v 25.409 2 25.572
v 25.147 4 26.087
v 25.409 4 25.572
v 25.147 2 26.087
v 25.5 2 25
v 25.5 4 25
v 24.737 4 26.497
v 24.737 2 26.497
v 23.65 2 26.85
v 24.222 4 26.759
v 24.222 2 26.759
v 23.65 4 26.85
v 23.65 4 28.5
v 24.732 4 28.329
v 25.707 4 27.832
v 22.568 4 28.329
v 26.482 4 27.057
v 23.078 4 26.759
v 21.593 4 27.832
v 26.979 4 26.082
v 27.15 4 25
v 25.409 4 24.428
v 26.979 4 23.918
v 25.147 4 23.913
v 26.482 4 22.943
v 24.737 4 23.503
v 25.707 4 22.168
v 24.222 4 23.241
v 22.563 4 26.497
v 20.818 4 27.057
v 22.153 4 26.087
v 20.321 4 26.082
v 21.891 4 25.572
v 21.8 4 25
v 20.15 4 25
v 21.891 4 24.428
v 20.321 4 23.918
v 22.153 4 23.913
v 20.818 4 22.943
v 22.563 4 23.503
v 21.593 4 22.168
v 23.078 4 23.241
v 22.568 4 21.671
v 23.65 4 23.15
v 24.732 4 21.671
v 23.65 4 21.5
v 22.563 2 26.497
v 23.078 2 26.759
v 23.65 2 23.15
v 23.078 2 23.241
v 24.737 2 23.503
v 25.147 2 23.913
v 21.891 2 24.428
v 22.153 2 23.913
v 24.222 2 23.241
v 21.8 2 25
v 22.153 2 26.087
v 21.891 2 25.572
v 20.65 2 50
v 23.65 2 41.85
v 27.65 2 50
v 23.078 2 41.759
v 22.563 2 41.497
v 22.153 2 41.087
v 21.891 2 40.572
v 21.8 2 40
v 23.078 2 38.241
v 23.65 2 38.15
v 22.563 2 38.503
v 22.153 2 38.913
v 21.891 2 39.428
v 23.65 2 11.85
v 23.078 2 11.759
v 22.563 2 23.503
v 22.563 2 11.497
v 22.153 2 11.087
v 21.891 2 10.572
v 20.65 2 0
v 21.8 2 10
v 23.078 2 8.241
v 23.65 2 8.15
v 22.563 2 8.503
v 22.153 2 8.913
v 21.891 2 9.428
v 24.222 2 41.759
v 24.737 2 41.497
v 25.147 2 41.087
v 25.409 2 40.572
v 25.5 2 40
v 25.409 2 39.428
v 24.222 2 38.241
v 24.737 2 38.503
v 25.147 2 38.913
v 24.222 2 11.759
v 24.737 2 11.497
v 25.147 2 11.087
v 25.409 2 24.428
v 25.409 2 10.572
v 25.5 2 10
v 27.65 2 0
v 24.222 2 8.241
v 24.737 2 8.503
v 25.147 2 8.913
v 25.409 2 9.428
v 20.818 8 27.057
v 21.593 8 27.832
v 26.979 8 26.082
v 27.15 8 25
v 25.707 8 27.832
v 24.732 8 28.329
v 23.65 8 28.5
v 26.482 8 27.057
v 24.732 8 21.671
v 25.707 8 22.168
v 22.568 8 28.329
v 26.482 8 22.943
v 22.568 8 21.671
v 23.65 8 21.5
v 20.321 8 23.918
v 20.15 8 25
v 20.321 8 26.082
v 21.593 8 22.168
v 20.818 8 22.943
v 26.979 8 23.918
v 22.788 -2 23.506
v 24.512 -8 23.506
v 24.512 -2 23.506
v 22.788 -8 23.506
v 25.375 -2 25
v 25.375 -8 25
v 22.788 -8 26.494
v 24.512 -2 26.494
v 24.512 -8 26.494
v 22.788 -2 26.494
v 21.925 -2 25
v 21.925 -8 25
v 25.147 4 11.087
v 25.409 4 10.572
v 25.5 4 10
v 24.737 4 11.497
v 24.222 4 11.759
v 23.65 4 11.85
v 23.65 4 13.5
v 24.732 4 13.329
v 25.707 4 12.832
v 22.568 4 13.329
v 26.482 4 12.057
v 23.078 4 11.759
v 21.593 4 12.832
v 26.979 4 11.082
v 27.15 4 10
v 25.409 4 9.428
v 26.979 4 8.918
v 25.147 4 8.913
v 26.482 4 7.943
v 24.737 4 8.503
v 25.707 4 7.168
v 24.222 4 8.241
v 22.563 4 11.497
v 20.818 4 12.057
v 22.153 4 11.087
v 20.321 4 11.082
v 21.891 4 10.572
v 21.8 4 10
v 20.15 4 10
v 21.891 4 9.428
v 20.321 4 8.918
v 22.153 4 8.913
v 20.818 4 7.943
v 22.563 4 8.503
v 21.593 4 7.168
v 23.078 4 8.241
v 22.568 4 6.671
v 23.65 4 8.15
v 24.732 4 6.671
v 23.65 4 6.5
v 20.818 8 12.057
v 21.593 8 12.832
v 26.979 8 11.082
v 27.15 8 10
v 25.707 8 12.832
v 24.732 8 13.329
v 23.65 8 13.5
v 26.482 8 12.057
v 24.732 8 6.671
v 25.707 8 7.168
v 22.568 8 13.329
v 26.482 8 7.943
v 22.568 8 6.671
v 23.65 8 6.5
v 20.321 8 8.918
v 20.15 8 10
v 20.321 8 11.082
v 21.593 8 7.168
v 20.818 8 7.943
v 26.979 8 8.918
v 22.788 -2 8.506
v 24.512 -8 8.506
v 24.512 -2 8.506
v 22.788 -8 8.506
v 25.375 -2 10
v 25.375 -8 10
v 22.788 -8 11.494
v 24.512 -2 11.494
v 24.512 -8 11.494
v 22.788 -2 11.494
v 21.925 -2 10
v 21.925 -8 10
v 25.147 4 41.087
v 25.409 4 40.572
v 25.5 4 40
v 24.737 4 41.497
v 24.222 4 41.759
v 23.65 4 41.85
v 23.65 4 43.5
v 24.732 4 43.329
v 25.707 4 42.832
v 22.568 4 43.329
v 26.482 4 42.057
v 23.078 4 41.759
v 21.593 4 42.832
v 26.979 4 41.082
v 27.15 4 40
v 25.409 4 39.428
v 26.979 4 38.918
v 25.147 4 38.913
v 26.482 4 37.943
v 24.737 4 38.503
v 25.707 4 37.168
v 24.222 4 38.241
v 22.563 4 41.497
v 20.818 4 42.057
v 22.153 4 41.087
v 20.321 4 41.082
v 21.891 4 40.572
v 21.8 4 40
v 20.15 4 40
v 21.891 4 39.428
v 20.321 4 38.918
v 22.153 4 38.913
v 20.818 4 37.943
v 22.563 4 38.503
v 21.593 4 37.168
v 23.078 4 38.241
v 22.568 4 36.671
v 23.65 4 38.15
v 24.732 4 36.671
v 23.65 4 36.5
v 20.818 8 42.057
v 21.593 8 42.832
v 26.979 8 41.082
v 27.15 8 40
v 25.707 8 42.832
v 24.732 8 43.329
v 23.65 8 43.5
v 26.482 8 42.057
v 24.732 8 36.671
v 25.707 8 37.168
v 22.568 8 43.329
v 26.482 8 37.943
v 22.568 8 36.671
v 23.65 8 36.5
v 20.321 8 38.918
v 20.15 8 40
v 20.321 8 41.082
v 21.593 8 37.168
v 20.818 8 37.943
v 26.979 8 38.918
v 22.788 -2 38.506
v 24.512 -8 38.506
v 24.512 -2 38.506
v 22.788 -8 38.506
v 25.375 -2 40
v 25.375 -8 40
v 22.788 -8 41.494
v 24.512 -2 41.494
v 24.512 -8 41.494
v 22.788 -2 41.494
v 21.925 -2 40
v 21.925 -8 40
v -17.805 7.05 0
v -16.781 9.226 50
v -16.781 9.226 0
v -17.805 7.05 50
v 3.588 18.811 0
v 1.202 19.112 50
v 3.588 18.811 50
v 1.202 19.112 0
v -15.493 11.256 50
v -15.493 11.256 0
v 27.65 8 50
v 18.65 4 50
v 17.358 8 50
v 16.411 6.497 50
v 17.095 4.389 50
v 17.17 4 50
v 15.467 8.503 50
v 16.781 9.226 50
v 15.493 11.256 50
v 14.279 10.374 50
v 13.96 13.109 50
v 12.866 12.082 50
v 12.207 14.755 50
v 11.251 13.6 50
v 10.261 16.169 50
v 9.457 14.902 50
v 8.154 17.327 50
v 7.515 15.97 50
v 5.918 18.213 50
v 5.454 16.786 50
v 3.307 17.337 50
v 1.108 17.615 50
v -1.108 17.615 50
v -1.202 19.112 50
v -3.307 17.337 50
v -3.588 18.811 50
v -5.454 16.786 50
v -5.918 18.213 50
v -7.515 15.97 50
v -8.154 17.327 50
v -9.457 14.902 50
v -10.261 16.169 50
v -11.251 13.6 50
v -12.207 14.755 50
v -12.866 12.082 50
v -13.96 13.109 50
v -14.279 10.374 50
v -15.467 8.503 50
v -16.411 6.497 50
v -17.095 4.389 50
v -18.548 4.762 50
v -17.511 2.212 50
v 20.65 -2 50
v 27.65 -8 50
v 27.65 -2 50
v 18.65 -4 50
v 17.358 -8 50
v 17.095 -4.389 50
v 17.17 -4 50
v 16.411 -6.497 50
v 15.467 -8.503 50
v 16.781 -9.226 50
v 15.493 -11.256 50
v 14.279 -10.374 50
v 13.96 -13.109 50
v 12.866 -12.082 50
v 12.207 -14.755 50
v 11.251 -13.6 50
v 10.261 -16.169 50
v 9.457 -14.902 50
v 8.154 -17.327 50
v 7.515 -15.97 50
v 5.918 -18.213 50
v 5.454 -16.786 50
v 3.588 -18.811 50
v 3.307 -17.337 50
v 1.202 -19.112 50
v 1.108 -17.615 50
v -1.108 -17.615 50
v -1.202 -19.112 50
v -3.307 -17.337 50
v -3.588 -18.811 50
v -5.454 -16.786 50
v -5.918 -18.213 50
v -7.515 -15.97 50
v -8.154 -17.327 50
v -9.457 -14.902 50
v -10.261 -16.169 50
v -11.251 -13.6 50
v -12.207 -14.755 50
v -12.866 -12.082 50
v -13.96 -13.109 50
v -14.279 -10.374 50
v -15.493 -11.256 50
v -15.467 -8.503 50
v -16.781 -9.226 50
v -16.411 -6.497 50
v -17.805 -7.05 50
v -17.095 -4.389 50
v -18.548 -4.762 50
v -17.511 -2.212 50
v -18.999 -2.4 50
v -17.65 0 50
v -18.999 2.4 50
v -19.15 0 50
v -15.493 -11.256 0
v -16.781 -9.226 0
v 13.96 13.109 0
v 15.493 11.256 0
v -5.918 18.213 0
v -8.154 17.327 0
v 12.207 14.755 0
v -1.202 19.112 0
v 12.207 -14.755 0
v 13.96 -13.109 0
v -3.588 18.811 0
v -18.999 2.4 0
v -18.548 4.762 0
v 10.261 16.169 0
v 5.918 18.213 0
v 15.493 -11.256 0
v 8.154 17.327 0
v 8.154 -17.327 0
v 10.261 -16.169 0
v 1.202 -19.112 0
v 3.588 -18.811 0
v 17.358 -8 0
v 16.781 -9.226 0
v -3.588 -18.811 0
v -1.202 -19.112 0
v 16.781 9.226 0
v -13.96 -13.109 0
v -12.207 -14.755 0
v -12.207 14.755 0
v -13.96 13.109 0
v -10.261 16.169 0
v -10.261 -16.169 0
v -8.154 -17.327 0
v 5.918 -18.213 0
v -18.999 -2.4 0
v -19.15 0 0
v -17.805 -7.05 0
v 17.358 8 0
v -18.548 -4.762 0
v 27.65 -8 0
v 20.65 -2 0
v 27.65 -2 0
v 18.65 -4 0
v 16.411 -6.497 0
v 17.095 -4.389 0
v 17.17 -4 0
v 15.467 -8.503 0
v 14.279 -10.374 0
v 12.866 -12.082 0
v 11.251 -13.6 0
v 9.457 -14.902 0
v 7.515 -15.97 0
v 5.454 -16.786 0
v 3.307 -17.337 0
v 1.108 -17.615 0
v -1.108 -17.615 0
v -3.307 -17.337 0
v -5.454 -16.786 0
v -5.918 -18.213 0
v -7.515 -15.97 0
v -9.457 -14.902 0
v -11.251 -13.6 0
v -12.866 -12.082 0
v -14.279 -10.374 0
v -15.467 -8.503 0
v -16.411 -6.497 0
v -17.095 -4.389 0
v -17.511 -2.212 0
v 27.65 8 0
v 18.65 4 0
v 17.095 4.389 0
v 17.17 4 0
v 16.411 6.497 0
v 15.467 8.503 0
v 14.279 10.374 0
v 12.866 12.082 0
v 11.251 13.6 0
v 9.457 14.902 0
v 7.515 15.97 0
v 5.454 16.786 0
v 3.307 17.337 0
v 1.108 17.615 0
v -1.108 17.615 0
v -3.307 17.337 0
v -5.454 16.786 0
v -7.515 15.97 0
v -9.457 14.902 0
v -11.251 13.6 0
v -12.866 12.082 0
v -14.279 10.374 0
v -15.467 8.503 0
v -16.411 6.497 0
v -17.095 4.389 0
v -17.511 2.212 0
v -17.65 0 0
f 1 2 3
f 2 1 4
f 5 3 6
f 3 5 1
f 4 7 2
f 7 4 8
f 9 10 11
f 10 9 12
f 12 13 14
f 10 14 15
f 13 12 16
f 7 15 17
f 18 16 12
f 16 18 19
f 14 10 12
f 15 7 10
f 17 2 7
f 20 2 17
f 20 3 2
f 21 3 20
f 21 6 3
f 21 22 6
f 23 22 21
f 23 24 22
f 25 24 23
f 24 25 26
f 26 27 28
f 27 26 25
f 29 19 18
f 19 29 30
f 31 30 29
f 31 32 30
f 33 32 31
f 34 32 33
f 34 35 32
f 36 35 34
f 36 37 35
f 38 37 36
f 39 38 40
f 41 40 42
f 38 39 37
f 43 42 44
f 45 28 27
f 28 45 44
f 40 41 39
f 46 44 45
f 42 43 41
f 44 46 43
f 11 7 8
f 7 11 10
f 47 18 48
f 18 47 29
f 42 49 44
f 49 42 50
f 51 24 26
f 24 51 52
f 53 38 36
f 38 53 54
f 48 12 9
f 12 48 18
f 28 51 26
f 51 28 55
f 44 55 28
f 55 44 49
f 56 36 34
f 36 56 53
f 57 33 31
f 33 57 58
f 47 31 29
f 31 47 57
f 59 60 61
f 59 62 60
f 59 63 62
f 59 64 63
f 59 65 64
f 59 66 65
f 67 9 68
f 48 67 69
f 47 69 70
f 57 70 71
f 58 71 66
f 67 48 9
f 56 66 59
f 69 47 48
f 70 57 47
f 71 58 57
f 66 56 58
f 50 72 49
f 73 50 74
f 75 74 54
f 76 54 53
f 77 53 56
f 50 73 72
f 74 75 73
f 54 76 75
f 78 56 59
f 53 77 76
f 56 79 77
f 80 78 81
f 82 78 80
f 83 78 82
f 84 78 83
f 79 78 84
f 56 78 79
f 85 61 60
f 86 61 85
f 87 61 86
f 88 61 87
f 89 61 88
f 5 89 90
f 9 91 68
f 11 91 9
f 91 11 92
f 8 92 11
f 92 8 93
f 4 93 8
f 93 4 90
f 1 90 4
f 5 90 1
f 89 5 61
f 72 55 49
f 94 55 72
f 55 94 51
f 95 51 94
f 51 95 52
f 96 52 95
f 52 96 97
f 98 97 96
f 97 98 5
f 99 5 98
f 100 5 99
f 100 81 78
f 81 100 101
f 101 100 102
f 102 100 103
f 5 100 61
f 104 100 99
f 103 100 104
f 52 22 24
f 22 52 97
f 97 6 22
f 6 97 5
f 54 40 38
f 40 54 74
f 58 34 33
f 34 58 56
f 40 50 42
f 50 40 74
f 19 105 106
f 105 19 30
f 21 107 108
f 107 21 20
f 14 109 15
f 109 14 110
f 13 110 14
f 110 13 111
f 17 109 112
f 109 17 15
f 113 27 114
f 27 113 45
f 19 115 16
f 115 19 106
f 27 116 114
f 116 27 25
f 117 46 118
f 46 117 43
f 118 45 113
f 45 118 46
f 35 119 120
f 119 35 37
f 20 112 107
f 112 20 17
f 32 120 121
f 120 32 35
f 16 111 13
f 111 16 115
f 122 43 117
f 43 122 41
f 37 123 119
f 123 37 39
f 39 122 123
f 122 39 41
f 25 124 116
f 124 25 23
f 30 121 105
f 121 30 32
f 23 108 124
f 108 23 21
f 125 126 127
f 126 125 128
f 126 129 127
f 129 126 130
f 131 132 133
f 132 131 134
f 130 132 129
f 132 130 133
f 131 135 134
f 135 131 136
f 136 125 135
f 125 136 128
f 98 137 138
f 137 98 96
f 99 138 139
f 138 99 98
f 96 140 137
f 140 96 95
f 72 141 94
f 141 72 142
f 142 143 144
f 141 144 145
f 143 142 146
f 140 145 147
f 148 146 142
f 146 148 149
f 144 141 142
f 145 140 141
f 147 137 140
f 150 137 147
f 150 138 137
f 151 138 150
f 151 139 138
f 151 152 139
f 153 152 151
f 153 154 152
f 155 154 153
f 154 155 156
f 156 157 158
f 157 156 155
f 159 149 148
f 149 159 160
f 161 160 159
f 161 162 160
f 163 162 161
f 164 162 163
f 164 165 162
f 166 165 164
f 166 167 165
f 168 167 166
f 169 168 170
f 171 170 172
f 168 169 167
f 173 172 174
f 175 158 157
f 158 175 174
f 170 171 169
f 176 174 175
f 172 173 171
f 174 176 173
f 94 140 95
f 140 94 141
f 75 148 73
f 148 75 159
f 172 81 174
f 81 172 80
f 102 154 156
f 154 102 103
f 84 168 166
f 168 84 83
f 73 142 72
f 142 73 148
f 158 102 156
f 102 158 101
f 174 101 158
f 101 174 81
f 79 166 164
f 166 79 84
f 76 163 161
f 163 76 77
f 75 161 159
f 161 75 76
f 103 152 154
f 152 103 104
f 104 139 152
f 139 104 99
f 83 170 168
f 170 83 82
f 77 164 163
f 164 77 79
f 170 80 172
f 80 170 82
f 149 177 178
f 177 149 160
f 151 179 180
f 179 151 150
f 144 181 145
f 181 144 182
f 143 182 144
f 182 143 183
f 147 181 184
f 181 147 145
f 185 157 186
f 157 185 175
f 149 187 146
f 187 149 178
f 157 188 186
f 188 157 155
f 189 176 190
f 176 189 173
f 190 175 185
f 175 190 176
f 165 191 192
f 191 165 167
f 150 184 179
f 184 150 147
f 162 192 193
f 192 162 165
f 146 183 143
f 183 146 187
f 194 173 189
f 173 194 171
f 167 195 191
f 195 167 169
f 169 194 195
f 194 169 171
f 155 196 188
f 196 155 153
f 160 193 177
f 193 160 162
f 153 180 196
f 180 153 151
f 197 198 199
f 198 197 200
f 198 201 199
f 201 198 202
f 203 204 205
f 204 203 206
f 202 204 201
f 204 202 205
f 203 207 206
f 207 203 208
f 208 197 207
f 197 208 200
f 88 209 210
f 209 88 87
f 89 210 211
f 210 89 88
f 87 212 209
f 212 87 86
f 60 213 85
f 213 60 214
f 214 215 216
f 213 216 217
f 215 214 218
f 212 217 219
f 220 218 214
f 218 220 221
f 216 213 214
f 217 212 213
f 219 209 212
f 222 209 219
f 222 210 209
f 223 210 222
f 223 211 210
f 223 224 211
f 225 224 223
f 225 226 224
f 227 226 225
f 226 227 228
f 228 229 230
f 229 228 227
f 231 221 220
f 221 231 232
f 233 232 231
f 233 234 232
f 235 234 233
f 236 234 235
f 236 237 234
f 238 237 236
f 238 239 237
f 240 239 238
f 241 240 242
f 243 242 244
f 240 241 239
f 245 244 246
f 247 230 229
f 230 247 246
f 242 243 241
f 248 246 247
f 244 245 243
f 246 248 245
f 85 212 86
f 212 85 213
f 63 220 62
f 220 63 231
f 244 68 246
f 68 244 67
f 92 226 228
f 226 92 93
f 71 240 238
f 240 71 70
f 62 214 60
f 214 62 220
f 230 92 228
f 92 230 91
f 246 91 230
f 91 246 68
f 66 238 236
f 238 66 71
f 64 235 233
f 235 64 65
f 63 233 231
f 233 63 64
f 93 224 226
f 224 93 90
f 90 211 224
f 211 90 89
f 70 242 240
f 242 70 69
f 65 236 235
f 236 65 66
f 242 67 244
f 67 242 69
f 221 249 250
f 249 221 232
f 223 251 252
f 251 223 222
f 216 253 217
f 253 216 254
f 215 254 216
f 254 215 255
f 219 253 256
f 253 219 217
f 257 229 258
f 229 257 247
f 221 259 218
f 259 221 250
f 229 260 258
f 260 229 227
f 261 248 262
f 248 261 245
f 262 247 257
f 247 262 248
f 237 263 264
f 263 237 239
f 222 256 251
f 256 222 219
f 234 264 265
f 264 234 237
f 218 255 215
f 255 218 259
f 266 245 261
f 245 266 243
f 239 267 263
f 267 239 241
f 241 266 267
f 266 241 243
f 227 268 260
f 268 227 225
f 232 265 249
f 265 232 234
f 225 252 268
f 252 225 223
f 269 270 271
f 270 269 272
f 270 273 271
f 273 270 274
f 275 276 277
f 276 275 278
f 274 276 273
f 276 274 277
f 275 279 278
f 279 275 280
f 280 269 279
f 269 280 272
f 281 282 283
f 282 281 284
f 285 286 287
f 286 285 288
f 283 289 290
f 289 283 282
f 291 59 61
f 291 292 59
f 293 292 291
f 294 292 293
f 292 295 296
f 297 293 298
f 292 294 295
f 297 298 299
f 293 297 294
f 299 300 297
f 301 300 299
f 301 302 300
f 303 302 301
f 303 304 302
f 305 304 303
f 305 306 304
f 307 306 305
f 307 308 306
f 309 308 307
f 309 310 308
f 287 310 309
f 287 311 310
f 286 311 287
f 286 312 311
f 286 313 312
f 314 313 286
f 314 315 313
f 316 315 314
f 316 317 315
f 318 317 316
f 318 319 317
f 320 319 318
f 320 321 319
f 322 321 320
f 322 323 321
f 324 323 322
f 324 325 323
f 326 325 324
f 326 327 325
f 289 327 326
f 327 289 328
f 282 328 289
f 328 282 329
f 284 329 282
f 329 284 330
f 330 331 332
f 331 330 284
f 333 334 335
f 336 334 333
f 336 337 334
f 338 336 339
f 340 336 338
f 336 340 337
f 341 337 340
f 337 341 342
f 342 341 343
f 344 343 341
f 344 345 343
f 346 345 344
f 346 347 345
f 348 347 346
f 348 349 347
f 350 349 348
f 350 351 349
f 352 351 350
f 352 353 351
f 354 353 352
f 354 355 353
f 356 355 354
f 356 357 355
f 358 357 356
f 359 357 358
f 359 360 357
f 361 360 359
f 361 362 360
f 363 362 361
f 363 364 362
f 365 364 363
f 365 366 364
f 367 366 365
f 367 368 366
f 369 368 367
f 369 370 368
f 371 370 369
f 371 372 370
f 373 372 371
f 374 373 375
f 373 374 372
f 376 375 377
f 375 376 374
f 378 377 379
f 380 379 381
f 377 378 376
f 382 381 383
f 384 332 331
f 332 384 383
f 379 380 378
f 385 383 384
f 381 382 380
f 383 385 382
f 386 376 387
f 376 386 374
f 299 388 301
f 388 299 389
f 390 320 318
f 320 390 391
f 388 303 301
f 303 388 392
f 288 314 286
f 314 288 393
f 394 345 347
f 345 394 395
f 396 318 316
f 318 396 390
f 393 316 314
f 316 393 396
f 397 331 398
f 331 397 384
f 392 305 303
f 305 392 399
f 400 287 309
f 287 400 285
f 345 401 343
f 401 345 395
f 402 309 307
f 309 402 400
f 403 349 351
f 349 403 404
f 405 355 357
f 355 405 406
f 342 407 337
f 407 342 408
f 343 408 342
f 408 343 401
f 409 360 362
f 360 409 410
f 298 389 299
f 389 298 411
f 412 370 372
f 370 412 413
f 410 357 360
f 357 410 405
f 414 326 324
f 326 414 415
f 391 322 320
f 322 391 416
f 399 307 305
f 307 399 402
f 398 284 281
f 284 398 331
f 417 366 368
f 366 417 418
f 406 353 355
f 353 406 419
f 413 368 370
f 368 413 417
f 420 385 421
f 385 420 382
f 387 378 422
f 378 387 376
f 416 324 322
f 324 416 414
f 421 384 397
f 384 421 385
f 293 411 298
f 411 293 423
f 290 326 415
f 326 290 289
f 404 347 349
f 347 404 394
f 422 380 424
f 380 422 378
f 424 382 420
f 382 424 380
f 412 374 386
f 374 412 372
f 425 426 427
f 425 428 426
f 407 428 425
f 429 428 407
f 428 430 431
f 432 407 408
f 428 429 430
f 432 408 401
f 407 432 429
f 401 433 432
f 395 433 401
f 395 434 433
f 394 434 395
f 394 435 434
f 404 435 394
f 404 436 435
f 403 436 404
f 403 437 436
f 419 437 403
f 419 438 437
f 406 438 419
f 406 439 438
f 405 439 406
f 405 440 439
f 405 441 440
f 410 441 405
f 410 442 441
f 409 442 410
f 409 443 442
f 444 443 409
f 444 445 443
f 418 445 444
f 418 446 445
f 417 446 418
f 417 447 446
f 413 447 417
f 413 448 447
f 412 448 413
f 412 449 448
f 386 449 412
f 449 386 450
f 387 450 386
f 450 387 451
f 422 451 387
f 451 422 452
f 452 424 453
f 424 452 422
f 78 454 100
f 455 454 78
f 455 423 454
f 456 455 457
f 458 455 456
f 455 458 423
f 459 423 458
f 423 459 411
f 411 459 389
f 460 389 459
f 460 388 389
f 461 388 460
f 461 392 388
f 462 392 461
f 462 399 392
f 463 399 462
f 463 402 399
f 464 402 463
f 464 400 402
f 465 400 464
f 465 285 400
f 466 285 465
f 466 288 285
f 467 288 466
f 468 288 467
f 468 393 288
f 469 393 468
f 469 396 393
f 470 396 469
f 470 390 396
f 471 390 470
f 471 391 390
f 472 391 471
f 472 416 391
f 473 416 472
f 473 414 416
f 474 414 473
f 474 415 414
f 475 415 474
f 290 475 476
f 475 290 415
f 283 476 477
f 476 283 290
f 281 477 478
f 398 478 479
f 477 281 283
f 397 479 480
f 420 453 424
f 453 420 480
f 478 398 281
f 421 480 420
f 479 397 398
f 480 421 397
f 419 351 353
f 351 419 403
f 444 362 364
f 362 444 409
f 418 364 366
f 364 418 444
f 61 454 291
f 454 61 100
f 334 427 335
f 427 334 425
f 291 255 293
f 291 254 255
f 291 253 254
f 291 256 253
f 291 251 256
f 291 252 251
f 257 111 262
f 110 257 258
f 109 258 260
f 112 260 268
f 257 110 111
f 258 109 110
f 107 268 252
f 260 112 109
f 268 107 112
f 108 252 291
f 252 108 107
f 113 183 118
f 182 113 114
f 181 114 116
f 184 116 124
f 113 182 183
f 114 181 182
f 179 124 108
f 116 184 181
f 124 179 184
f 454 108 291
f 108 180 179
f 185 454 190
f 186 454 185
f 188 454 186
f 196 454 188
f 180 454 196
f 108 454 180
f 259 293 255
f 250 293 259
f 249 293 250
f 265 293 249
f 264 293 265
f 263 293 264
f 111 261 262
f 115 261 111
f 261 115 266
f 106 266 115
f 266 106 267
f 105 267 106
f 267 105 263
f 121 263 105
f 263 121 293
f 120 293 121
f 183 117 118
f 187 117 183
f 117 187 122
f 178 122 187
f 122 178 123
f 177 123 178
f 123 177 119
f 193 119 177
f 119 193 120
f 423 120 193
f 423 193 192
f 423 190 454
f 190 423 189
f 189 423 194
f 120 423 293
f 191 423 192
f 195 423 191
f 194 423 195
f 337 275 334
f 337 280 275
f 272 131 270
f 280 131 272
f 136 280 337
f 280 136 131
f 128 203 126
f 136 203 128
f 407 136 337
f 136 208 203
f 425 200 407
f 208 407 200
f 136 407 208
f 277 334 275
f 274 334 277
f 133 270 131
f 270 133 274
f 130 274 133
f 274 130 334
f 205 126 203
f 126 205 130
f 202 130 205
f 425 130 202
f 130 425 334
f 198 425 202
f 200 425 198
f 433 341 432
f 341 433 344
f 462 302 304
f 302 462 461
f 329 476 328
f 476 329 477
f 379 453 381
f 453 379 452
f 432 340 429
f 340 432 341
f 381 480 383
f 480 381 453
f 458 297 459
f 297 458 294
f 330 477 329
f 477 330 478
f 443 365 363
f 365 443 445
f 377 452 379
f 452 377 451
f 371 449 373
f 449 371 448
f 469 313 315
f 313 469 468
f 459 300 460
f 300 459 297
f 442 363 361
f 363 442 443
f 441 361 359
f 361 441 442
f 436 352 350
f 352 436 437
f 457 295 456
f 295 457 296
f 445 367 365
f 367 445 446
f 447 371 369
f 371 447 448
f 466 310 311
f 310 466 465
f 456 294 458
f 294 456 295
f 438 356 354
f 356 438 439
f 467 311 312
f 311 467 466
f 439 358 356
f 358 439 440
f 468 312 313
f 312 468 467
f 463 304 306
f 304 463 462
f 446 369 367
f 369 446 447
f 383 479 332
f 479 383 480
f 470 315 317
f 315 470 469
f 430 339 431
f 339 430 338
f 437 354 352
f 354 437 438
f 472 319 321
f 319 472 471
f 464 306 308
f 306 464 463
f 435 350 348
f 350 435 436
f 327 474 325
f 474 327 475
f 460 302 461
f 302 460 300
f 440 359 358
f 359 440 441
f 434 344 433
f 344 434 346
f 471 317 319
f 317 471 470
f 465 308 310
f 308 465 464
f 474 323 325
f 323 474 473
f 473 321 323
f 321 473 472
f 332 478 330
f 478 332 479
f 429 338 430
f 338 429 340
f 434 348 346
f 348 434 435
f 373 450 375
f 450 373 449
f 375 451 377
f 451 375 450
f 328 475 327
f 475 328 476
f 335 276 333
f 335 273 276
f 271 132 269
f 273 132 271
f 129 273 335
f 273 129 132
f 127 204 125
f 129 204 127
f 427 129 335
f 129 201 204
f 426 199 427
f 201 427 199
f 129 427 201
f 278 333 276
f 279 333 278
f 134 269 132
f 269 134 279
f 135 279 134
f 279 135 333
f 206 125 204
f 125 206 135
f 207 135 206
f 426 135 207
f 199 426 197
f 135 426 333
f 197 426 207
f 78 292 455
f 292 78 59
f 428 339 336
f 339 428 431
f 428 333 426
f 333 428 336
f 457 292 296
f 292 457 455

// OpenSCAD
d = 35.3;
h = 50;

lg = 100;
gt = 4; // gap thickness
edr = 10; // ear delta radius
et = 16; // ear thichness total


module screw_hole(dl, ds, hb, db) {
    large = 100;
    cylinder(h=large, d=ds, $fn=6);
    translate([0,0,-hb]) union() {
        cylinder(h=hb, d=db, $fn=20);
        mirror([0,0,1]) cylinder(h=large, d=dl, $fn=20);
    }
}


difference() {
    $fn = 50;
    union() {
        cylinder(d=d+3, h=h);
        translate([0,-et/2,0]) cube([d/2+edr,et,h]);
    }
    // remove pipe
    cylinder(d=d, h=h);
    
    // remove ear gap
    translate([0,-gt/2,0]) cube([lg,gt,h]);
    
    // remove shelf aligner
    ndt = 2; // aligner norch delta thickness
    ndr = 1; // aligner norch delta radius
    nir = 2; // aligner norch increment radius
    #linear_extrude(h) polygon([
        [0, gt/2+ndt], 
            [d/2+ndr, gt/2+ndt], 
                [d/2+ndr+nir, gt/2], 
                [d/2+ndr+nir, -gt/2], 
            [d/2+ndr, -gt/2-ndt], 
        [0, -gt/2-ndt], 
    ]);
    
    // remove screw holes
    ds = 3.45;
    for(h=[
        h/2,
        0.2*h, 0.8*h,
    ]){
        translate([d/2+edr/2+1,gt/2,h]) rotate([90,0,0]) 
            screw_hole(dl=7, ds=ds, hb=2, db=3.7);
    }
    
}
